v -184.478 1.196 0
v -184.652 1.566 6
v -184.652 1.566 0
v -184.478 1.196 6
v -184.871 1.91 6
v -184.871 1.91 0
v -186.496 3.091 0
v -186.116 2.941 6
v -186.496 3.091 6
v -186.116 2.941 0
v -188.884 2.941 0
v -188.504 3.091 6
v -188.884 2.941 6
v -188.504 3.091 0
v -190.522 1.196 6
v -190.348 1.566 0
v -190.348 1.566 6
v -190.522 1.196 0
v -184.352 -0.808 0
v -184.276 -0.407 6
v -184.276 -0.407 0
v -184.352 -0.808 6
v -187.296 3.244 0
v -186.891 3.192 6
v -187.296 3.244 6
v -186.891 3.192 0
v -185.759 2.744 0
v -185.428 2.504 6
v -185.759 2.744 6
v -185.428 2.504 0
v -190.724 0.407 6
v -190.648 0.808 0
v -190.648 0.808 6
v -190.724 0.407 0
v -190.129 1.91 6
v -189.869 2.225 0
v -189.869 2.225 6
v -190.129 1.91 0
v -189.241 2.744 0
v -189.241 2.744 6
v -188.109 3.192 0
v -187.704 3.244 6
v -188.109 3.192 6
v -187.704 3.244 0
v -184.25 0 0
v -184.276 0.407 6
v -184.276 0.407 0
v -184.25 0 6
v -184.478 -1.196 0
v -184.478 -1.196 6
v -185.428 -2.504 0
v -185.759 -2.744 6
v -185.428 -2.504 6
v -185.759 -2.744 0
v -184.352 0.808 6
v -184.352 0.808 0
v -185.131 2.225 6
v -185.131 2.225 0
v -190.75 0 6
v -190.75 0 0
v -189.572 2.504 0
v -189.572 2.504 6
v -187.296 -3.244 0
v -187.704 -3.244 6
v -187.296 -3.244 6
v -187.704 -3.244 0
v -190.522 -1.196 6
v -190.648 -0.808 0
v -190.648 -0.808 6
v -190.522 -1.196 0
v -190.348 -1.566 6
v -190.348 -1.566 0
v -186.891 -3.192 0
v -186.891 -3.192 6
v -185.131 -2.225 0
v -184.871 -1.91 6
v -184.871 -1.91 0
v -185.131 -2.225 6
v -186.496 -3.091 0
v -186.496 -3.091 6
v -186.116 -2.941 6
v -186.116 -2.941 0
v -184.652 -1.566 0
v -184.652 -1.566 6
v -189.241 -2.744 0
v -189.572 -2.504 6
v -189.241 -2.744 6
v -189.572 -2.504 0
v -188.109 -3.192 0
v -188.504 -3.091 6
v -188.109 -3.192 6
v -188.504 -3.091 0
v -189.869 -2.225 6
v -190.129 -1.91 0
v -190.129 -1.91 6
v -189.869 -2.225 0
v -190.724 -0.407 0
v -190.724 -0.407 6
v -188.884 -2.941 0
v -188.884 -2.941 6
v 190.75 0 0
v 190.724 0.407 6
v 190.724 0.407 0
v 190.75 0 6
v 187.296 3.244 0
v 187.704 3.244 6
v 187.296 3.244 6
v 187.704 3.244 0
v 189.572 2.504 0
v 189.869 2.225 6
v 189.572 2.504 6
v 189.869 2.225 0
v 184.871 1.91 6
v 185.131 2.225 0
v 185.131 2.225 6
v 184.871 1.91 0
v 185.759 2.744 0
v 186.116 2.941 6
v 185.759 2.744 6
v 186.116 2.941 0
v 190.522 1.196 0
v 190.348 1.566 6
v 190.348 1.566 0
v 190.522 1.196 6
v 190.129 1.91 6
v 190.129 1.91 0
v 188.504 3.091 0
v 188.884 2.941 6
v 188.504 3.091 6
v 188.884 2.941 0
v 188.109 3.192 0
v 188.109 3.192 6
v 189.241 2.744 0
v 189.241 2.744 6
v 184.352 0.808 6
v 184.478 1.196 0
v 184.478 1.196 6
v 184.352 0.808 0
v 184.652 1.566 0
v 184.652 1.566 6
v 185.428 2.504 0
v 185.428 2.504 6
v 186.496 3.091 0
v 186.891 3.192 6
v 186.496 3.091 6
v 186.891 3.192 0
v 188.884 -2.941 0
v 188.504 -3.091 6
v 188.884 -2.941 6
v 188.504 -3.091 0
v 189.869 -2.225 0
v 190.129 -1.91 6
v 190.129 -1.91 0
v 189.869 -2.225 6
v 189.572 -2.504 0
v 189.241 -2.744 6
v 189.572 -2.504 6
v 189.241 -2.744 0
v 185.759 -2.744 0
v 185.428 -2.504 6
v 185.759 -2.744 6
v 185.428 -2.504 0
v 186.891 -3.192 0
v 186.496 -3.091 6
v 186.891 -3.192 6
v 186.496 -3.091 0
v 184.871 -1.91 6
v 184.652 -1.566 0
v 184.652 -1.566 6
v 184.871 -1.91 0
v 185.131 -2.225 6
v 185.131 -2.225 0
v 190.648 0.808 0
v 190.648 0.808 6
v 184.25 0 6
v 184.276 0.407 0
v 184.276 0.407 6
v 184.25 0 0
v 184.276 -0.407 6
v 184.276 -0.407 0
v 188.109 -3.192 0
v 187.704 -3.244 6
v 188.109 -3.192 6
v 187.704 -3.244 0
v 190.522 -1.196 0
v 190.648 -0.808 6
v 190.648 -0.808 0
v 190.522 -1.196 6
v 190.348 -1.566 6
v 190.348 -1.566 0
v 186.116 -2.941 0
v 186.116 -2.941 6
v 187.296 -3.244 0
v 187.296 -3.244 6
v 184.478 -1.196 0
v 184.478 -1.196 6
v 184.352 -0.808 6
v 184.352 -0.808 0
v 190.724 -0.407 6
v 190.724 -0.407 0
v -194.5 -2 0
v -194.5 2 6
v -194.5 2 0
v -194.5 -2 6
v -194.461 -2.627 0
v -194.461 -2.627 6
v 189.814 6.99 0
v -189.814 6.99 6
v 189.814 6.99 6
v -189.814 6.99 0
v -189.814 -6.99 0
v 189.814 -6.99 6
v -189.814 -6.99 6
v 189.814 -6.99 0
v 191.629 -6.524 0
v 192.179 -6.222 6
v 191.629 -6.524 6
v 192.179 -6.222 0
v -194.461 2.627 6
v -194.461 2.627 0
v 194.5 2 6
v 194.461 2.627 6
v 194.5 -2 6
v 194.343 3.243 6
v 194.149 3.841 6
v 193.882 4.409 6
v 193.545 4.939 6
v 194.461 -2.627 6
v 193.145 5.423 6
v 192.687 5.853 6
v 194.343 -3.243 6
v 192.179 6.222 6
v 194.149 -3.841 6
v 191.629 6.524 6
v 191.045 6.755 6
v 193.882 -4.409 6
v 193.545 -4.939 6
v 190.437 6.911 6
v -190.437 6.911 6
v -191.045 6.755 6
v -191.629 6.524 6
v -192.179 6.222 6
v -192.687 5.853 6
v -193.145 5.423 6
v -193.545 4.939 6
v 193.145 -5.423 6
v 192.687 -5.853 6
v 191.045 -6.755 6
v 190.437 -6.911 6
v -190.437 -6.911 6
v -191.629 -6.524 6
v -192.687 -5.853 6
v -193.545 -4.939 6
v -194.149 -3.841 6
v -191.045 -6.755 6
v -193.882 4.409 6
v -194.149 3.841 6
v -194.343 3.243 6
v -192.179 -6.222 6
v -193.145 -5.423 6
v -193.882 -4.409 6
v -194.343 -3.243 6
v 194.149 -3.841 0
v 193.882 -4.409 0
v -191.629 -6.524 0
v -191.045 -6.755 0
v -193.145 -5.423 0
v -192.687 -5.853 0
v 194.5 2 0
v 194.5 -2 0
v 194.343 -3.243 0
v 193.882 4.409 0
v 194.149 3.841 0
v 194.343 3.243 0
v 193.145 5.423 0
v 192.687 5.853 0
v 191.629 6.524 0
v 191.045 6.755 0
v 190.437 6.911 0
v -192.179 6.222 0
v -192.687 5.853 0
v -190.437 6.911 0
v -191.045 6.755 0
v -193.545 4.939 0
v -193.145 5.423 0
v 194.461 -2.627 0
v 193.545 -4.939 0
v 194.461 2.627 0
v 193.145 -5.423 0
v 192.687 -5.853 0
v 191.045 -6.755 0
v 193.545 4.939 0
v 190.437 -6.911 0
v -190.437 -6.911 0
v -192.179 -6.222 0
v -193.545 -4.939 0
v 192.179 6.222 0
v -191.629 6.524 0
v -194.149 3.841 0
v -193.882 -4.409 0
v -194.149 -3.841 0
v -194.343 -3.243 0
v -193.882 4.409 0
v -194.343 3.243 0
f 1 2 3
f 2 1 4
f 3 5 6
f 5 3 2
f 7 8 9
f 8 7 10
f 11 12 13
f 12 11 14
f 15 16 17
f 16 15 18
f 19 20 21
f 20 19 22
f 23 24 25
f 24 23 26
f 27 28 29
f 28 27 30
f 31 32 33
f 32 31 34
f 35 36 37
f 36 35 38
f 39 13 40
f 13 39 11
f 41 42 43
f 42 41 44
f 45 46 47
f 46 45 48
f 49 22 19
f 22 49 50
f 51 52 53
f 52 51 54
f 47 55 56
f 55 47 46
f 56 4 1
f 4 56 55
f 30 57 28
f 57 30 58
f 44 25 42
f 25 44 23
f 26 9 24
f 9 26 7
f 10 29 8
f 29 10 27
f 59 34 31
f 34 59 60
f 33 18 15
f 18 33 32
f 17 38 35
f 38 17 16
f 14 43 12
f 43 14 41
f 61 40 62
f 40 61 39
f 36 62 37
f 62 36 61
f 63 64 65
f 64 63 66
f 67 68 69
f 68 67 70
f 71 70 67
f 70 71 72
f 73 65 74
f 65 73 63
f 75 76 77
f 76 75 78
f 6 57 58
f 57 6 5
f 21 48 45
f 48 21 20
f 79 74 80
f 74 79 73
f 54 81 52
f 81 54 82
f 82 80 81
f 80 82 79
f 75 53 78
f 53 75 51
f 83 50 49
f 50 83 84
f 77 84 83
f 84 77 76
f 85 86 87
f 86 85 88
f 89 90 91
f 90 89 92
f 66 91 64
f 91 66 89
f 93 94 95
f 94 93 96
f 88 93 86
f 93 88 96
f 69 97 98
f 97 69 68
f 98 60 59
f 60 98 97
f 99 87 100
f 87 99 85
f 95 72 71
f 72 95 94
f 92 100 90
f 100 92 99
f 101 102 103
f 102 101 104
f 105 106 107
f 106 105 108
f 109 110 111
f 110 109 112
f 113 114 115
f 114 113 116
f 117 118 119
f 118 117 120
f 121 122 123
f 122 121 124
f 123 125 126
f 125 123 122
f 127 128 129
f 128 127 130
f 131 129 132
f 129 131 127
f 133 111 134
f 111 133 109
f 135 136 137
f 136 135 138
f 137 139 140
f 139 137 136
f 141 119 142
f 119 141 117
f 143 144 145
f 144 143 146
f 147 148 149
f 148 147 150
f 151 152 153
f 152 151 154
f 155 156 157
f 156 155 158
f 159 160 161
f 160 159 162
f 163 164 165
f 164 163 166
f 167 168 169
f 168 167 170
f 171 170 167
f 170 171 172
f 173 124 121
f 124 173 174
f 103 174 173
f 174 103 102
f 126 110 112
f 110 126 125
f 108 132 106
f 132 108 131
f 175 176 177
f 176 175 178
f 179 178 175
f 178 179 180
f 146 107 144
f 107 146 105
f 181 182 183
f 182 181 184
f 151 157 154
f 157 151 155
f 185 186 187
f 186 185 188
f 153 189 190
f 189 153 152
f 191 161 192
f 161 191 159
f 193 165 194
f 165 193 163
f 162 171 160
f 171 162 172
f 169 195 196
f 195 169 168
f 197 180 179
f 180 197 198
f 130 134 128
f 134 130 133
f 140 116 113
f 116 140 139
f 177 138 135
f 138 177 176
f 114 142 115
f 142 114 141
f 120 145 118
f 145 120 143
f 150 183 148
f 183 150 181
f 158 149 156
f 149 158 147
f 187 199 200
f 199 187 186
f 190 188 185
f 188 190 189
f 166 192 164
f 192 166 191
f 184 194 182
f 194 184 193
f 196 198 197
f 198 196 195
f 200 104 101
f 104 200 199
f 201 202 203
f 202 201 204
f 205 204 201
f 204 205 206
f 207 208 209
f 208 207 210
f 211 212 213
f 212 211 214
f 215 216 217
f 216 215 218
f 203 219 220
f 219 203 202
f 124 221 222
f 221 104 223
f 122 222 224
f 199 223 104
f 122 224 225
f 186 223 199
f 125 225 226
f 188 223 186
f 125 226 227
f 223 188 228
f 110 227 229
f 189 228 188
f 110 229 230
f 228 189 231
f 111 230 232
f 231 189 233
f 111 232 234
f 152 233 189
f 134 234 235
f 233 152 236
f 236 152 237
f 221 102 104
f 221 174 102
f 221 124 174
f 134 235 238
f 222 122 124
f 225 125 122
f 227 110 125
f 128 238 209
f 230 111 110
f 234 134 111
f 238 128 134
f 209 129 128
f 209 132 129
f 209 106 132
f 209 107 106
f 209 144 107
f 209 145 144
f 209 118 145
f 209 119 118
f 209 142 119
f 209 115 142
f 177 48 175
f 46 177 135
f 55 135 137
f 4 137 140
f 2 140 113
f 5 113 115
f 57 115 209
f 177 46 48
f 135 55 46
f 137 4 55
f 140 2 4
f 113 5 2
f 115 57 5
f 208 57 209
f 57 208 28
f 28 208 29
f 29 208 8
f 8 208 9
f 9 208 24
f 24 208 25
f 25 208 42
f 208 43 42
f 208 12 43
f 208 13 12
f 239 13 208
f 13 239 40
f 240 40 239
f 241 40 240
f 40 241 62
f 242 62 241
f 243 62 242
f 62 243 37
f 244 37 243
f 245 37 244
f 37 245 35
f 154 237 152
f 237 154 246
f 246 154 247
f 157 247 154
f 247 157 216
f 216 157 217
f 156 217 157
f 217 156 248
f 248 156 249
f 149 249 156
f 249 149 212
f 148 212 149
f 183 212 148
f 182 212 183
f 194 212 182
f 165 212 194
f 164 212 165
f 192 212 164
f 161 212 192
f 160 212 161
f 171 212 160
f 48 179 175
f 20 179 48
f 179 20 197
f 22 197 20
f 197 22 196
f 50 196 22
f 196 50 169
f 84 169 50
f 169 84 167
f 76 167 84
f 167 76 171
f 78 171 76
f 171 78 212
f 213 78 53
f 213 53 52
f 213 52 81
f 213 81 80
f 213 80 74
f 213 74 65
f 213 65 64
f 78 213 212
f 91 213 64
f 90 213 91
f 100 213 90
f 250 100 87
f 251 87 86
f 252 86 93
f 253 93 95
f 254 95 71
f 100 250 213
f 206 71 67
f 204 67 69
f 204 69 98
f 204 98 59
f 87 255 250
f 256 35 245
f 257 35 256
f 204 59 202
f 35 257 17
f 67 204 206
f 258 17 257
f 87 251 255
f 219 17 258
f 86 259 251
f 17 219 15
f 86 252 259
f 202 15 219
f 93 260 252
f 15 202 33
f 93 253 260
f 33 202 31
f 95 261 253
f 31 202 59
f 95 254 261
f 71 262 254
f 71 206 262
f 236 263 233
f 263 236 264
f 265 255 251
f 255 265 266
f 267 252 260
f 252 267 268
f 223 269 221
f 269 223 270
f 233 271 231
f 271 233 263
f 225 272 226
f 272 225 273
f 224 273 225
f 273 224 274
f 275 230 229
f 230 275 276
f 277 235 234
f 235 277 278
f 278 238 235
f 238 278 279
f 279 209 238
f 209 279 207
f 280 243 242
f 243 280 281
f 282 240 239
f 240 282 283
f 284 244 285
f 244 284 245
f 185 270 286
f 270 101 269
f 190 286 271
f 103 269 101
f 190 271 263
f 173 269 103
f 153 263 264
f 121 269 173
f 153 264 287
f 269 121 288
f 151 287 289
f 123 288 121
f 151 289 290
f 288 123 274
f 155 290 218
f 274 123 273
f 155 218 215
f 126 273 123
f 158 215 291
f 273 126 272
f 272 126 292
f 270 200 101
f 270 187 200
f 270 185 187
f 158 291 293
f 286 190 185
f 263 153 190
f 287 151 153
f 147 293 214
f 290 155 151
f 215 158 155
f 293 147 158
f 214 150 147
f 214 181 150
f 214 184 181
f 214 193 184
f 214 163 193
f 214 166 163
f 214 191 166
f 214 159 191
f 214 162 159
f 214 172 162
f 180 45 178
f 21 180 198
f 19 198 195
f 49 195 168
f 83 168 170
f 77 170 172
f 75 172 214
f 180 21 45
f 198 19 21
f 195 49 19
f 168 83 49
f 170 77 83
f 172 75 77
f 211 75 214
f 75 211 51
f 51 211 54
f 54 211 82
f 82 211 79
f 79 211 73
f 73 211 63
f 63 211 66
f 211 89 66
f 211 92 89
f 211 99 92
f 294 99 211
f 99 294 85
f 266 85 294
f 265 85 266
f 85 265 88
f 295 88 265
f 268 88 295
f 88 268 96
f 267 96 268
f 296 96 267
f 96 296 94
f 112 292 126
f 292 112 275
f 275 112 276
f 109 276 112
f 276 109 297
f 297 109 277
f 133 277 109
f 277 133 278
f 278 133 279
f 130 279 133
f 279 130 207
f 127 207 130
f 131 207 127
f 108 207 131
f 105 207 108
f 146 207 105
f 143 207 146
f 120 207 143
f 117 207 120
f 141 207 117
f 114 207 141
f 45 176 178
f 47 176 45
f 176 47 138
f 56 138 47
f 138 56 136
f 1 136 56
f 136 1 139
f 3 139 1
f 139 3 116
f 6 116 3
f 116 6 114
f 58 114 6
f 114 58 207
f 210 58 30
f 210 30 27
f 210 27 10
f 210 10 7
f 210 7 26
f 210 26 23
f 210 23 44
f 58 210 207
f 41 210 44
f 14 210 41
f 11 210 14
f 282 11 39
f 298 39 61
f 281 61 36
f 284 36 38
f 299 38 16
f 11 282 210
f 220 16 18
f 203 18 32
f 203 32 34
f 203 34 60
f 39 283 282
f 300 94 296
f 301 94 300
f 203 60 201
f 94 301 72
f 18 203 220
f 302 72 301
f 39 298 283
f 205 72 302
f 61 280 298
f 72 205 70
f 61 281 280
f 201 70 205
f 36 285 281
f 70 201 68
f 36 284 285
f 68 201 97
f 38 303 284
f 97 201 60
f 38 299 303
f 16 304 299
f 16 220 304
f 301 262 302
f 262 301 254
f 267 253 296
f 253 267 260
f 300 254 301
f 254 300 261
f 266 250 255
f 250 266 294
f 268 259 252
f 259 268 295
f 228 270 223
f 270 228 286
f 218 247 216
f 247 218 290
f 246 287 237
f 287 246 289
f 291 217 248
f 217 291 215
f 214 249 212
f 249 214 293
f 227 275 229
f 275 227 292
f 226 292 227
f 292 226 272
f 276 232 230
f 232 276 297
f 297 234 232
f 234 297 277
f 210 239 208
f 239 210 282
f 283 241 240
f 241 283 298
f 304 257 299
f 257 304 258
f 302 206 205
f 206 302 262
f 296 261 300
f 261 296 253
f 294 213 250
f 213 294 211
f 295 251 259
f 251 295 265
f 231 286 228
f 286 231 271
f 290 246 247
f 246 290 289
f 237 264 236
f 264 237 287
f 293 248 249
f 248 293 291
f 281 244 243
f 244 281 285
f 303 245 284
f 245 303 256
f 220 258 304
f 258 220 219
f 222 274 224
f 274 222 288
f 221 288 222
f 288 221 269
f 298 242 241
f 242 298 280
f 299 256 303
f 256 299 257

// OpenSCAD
$fn = 50;


difference() {
	union() {
		hull() {
			translate(v = [-189.5000000000, 2.0000000000, 0]) {
				cylinder(h = 6, r = 5);
			}
			translate(v = [189.5000000000, 2.0000000000, 0]) {
				cylinder(h = 6, r = 5);
			}
			translate(v = [-189.5000000000, -2.0000000000, 0]) {
				cylinder(h = 6, r = 5);
			}
			translate(v = [189.5000000000, -2.0000000000, 0]) {
				cylinder(h = 6, r = 5);
			}
		}
	}
	union() {
		translate(v = [-187.5000000000, 0.0000000000, -100.0000000000]) {
			cylinder(h = 200, r = 3.2500000000);
		}
		translate(v = [-187.5000000000, 0.0000000000, -100.0000000000]) {
			cylinder(h = 200, r = 3.2500000000);
		}
		translate(v = [187.5000000000, 0.0000000000, -100.0000000000]) {
			cylinder(h = 200, r = 3.2500000000);
		}
		translate(v = [187.5000000000, 0.0000000000, -100.0000000000]) {
			cylinder(h = 200, r = 3.2500000000);
		}
	}
}
